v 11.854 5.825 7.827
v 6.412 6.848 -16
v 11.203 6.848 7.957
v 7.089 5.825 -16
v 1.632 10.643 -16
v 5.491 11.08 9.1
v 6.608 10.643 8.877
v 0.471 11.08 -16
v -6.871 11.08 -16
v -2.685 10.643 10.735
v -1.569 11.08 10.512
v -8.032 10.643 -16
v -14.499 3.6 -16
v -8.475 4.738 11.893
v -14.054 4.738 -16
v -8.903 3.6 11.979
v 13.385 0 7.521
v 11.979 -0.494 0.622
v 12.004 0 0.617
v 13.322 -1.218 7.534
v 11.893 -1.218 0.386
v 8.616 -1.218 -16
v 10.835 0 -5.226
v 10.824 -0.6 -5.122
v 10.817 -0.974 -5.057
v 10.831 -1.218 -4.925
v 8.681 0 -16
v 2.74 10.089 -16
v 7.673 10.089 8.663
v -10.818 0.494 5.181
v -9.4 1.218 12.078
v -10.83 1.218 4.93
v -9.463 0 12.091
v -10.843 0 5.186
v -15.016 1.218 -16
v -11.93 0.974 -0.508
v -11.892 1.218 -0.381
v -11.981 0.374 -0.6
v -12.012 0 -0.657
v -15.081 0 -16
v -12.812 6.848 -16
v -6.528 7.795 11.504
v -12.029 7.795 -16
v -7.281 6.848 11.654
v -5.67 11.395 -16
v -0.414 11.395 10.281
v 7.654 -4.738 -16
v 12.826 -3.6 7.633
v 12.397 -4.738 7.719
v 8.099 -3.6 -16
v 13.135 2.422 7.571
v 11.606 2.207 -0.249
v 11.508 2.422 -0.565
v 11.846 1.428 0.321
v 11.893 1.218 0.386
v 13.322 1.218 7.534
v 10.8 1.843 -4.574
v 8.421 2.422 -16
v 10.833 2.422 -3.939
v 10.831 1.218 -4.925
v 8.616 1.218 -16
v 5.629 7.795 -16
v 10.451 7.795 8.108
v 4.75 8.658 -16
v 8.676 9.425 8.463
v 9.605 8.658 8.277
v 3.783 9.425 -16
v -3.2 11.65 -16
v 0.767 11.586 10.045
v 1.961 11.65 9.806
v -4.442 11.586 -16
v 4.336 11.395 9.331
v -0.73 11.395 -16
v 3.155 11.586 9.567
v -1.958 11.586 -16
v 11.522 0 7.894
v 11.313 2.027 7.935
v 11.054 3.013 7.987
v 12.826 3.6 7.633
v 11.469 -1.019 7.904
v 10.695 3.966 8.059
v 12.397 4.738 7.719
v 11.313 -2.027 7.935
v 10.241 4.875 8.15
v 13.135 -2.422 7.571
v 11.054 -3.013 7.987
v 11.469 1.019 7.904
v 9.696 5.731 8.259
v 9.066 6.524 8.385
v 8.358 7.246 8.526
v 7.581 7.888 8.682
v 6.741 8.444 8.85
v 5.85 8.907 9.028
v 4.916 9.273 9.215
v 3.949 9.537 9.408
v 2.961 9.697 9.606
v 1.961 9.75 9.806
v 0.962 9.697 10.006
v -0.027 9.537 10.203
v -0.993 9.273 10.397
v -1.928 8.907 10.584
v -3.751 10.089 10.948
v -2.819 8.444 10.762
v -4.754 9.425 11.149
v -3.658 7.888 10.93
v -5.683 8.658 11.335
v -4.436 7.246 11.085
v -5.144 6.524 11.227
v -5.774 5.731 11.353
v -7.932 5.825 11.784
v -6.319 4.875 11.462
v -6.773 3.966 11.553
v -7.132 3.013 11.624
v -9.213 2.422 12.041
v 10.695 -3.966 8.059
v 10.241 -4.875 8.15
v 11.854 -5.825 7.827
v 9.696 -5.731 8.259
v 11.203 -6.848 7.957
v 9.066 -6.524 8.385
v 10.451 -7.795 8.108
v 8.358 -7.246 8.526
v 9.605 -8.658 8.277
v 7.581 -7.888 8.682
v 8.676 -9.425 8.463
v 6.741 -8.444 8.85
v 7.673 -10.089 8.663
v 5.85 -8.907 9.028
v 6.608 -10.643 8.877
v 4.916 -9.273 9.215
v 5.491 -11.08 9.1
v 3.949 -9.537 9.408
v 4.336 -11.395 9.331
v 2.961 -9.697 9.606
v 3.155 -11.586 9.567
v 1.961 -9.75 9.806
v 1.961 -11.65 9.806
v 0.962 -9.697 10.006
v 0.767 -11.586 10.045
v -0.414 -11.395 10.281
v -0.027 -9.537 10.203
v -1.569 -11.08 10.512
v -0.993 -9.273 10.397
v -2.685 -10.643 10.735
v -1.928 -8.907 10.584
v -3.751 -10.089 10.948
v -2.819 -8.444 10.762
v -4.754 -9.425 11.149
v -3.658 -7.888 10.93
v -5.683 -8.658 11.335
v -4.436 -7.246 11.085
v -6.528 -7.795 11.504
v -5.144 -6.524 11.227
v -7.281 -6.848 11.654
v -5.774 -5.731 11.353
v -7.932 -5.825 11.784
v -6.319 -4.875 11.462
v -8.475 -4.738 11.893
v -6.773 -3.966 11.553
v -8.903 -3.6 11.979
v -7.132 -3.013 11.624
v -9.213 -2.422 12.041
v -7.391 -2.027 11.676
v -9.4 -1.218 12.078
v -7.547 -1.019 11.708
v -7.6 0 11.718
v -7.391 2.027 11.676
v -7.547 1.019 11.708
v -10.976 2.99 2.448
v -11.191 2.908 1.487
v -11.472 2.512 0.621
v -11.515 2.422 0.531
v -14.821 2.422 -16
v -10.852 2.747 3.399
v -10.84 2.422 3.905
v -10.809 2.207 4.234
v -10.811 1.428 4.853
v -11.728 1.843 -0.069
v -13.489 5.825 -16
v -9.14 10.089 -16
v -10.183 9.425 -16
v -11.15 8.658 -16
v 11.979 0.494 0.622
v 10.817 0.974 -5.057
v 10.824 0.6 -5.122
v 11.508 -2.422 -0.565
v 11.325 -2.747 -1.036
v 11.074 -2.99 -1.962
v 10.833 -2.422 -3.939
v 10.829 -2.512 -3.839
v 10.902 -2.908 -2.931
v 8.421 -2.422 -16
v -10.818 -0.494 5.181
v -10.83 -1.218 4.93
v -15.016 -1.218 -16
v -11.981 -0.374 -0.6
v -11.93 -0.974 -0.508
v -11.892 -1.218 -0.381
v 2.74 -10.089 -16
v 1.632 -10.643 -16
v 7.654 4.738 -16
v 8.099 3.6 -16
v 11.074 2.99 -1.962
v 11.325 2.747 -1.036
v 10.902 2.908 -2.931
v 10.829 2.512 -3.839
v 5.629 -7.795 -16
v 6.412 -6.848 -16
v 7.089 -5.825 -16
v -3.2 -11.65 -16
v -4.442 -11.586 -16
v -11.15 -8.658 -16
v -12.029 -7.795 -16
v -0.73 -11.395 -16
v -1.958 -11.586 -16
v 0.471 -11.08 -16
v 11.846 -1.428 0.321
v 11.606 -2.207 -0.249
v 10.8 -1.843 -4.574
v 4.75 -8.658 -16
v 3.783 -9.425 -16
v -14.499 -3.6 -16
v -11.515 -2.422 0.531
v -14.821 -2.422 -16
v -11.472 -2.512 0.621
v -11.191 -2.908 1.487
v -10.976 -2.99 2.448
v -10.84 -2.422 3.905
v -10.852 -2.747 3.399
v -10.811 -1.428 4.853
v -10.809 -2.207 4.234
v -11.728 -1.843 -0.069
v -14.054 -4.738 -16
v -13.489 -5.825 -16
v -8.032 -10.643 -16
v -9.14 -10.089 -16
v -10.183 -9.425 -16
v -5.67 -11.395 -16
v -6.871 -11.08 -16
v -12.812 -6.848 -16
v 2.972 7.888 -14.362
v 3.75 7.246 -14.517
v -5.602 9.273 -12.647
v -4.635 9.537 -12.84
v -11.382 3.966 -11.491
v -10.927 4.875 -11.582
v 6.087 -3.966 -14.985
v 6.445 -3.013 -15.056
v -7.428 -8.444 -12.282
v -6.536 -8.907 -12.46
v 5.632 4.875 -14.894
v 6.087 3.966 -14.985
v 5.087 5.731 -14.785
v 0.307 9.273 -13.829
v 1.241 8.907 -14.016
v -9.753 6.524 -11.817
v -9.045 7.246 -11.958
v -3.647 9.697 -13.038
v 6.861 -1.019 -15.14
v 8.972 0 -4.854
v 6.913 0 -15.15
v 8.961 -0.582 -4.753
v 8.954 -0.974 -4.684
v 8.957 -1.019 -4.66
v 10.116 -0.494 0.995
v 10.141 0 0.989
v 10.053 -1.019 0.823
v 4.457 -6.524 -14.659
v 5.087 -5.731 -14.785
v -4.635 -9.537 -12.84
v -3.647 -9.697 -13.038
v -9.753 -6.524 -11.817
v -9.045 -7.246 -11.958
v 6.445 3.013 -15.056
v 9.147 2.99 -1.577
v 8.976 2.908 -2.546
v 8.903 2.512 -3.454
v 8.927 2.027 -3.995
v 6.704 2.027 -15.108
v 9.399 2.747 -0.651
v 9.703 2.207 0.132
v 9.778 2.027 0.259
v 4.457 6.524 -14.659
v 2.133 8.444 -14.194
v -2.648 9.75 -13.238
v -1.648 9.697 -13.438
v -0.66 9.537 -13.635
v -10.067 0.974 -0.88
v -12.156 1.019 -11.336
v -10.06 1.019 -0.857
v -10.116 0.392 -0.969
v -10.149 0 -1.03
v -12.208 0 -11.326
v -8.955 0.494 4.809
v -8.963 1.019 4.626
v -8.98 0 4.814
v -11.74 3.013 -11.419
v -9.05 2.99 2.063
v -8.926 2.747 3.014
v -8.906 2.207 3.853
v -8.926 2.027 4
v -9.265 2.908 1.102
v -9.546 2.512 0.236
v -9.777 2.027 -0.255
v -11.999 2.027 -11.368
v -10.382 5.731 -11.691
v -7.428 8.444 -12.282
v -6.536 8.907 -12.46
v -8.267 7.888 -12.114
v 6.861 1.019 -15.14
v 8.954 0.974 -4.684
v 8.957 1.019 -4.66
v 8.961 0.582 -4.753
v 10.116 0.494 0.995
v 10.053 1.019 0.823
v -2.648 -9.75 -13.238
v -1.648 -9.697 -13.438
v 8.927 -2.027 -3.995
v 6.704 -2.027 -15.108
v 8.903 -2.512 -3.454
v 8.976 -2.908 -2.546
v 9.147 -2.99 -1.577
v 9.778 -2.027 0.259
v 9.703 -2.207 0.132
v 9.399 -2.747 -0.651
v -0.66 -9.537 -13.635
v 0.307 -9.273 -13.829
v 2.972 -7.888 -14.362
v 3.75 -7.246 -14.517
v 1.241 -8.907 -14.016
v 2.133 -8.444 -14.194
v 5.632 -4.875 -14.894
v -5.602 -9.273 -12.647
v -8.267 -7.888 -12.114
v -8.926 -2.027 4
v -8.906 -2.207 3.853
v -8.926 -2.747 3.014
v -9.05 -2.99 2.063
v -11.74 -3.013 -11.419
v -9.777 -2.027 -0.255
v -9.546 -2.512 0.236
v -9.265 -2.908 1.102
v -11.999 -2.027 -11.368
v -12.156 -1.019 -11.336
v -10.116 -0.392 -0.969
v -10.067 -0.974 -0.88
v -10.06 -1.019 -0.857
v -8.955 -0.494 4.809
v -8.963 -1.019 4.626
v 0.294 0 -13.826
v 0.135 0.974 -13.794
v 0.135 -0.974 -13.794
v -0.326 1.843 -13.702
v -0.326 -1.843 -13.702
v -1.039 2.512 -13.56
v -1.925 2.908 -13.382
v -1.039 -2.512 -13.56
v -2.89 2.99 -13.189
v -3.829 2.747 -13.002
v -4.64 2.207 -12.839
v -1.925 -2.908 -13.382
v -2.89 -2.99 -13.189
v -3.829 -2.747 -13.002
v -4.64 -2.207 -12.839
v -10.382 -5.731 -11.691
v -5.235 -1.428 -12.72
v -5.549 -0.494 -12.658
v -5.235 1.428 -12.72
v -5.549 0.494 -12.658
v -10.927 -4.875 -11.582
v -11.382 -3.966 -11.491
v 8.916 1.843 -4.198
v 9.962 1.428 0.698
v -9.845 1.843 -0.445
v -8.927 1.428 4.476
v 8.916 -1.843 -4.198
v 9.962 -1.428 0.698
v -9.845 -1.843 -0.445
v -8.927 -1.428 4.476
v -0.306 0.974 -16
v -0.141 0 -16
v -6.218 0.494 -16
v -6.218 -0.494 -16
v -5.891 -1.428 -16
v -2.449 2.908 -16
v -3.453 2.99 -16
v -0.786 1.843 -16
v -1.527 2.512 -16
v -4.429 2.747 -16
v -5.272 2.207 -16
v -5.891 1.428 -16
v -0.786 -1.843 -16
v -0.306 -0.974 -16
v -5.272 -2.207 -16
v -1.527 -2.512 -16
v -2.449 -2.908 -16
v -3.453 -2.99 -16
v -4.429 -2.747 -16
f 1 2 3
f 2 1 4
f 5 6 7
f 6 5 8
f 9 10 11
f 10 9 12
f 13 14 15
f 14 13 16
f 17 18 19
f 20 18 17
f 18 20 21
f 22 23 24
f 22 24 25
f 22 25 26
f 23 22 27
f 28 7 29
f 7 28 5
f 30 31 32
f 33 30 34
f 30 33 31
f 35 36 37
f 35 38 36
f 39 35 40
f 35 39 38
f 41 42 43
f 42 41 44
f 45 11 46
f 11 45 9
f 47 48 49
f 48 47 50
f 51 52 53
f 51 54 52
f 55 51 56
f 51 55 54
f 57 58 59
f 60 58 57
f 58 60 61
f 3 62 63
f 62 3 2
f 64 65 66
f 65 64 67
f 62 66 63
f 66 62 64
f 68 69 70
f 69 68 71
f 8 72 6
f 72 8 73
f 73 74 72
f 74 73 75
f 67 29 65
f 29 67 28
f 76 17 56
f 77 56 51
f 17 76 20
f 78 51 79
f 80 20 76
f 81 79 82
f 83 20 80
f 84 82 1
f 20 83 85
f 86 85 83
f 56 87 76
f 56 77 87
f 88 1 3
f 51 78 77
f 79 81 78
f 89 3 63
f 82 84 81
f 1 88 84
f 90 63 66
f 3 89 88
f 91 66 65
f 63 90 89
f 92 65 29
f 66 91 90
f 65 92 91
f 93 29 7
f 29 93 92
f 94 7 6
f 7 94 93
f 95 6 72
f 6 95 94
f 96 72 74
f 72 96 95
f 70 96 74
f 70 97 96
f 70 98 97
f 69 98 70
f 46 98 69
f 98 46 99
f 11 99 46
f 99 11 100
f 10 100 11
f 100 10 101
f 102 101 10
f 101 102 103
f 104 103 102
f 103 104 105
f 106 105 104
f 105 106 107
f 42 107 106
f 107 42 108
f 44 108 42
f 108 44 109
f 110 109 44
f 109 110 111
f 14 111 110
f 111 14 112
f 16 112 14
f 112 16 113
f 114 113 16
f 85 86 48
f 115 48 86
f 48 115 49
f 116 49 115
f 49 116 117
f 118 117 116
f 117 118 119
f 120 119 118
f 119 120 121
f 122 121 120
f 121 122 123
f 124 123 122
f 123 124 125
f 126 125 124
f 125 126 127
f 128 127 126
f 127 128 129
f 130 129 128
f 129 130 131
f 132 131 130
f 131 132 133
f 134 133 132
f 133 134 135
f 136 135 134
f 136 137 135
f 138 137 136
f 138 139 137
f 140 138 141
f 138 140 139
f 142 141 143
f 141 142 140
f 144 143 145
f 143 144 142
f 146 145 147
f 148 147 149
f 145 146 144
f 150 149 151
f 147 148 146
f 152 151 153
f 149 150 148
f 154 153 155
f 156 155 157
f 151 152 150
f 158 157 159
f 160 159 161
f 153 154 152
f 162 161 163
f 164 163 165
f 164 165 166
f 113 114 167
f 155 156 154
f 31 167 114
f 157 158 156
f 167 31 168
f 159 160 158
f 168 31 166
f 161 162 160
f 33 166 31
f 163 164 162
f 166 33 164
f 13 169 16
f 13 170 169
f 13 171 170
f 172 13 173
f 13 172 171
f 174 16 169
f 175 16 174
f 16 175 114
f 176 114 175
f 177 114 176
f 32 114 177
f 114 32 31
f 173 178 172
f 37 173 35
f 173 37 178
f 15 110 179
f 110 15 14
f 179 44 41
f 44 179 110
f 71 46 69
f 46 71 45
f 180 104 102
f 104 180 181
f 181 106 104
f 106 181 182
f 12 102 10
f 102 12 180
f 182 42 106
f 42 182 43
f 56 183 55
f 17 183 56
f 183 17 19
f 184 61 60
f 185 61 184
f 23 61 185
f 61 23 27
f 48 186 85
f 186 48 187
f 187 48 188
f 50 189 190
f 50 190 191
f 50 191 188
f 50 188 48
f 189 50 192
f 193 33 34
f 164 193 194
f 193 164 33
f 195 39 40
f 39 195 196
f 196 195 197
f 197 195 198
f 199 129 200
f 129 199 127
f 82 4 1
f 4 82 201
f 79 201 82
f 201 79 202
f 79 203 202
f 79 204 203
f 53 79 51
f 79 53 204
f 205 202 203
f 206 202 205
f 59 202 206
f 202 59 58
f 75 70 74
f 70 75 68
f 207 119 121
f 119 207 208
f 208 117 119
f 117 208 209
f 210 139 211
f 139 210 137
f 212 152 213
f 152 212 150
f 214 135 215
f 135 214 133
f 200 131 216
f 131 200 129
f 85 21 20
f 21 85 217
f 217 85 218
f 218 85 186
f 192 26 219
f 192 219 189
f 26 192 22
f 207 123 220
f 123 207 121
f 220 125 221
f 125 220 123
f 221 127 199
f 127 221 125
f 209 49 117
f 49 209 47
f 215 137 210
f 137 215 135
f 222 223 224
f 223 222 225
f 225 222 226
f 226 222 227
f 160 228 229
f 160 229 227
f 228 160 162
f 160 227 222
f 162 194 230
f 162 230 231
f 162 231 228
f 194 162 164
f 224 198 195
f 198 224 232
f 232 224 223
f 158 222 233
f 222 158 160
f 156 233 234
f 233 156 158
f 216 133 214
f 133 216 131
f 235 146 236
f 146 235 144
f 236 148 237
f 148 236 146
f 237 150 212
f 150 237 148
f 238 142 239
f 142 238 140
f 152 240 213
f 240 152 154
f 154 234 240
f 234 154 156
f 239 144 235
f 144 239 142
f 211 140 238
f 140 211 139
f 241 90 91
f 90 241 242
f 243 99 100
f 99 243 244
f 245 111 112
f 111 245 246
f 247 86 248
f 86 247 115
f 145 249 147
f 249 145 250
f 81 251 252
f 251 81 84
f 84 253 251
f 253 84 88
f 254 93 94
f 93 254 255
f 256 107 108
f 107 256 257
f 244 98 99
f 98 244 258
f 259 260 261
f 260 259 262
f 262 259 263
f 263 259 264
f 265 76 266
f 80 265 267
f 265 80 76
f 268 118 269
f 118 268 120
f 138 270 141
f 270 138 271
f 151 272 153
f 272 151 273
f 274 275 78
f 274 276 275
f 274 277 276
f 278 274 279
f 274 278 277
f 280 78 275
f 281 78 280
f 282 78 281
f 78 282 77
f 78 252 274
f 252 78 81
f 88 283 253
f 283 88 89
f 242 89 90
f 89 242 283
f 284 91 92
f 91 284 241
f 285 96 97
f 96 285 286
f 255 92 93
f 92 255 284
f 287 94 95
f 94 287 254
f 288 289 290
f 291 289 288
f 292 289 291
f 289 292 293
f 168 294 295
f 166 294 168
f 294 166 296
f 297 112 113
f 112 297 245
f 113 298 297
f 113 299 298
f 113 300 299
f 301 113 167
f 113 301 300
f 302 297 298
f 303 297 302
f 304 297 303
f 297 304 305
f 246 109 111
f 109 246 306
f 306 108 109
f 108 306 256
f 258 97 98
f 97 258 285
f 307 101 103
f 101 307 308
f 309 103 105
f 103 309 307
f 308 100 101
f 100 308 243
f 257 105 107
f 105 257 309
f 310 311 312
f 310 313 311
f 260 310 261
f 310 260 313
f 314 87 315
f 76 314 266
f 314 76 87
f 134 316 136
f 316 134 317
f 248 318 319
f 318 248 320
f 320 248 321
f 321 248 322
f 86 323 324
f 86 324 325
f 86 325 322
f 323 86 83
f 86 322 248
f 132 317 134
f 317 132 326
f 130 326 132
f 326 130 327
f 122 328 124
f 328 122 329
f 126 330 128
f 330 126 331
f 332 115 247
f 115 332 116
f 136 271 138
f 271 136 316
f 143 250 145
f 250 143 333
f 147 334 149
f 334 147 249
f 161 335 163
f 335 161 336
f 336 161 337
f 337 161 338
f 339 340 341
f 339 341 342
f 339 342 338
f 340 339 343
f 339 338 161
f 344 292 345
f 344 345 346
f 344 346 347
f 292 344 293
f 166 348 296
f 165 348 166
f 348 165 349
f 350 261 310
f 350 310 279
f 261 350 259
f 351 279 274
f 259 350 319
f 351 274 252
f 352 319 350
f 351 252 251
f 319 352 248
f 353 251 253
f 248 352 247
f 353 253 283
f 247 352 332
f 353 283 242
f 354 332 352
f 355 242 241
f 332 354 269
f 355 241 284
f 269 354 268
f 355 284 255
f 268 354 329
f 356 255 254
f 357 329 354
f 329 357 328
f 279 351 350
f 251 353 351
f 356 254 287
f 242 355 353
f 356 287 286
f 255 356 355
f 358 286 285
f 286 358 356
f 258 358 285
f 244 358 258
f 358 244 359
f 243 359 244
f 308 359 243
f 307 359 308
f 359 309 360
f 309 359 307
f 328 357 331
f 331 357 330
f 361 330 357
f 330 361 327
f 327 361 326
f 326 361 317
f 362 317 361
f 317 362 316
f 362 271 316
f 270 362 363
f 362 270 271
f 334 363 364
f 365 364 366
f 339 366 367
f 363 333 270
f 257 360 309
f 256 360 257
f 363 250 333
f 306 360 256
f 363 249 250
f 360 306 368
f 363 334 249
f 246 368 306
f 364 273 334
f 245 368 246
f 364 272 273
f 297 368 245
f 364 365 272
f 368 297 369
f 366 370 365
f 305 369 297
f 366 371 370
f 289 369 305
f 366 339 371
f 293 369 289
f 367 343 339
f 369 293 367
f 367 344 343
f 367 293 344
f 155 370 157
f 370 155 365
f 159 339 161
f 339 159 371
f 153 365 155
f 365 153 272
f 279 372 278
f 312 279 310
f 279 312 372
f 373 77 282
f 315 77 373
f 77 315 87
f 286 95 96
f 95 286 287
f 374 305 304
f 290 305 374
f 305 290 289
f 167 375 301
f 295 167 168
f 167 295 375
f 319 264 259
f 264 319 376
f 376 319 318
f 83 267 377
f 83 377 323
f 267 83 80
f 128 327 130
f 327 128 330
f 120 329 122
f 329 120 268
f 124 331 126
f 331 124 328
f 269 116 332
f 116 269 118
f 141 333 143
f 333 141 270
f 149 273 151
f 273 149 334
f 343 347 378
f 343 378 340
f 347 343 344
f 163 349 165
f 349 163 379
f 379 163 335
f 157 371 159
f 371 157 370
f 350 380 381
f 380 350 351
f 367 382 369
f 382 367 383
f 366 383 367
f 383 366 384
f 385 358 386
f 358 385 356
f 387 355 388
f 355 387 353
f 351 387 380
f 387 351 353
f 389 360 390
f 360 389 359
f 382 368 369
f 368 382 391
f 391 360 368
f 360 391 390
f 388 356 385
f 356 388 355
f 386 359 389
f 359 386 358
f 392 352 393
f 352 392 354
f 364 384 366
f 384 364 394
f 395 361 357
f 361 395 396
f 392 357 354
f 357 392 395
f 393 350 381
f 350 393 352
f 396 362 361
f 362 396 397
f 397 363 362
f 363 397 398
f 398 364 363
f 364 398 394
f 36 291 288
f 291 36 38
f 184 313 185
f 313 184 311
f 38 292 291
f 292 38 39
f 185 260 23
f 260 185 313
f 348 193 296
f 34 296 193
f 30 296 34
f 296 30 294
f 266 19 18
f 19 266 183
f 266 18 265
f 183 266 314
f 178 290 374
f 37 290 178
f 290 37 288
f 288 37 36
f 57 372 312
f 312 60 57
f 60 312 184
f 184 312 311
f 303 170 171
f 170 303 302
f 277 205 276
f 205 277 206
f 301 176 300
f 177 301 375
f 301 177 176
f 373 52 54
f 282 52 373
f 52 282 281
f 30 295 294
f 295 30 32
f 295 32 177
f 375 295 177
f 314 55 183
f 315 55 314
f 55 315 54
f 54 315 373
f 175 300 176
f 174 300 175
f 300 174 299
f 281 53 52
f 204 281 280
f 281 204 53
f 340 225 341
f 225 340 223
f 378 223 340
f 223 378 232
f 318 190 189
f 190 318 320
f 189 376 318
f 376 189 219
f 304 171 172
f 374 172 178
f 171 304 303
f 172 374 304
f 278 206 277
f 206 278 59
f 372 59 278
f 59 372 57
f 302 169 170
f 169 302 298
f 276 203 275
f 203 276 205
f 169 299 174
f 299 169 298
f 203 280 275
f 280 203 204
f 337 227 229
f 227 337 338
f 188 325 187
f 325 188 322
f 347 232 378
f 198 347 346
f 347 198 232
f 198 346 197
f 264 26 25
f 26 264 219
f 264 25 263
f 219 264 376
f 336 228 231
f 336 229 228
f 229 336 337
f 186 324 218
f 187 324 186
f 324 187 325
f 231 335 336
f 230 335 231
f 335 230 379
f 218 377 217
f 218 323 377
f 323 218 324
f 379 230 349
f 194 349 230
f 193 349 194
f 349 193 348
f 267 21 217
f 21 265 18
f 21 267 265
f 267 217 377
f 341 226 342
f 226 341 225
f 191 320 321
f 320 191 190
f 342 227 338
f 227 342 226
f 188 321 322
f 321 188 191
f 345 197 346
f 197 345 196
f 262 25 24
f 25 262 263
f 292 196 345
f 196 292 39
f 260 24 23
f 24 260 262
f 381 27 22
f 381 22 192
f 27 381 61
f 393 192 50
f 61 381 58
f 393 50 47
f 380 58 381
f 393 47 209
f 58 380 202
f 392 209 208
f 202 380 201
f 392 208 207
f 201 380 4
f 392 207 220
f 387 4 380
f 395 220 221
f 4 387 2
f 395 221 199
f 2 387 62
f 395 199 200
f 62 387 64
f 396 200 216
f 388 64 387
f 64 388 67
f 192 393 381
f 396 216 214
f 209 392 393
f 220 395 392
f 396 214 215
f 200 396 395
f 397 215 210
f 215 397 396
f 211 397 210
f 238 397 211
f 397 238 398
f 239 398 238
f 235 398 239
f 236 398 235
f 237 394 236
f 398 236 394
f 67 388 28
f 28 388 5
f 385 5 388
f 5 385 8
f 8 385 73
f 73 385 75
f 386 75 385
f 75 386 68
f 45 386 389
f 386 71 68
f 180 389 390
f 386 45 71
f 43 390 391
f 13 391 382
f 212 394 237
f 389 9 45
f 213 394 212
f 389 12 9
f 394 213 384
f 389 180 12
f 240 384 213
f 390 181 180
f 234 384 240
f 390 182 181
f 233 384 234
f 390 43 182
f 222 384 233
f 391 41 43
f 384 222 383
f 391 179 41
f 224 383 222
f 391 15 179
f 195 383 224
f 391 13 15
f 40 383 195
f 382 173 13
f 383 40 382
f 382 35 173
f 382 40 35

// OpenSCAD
$fs = 1;
$fa = 6;
rake = 65;
forkLen = 325;
rakeOffsetAngle = 1 * (90 - atan(forkLen/rake));

forkHoleD = 23.3;
big = 100;
module forkMount(args) {
    rotate([0, 1*rakeOffsetAngle, 0]) difference() {
        translate([0,0,25-30])
            cylinder(d=forkHoleD, h=30, center=true);
        cylinder(d=19.5, h=27, center=true); // aluminum insert
        cylinder(d=6, h=100, center=true); // fender bolt hole
        rotate([0,90,0])
            cylinder(d=6, h=big, center=true); // fork crown bolt hole
        // make a cube whose top surface is parallel to the bottom of the fork crown
        // then rotate it so that the top surface is tangent to the fender circle
        // that gives us a flat (printable) bottom suface for the mount
        rotate([0, -rakeOffsetAngle, 0])
            translate([0, 0, -forkLen - 16])
                cube([2*forkLen, 60, 2*forkLen], center=true);

        // sanity check: show the fender circle based on translation to make
        // sure our rotation is correct
        //translate([rake, 0, -forkLen]) rotate([90,0,0]) cylinder(d=(584 + 46)/cos(180/90), h=60, center=true, $fn=90);

    }
}

module washer(args) {
    offset = sin(rakeOffsetAngle) * forkHoleD;
    rotate([0, -1*rakeOffsetAngle, 0])
        intersection() {
            translate([0, 0, offset/2])
                rotate([0, 1*rakeOffsetAngle, 0])
                    difference() {
                        cylinder(d=forkHoleD, h=30, center=false);
                        cylinder(d=6, h=big, center=true); // bolt hole
                    }
            cylinder(r=big, h=offset, center=false);
        }
}
*rotate([0, -rakeOffsetAngle, 0]) {
    translate([0,0,16]) forkMount();
    translate([-4,0,-8]) rotate([0, 1*rakeOffsetAngle, 0]) washer();
}
forkMount();
*washer();
